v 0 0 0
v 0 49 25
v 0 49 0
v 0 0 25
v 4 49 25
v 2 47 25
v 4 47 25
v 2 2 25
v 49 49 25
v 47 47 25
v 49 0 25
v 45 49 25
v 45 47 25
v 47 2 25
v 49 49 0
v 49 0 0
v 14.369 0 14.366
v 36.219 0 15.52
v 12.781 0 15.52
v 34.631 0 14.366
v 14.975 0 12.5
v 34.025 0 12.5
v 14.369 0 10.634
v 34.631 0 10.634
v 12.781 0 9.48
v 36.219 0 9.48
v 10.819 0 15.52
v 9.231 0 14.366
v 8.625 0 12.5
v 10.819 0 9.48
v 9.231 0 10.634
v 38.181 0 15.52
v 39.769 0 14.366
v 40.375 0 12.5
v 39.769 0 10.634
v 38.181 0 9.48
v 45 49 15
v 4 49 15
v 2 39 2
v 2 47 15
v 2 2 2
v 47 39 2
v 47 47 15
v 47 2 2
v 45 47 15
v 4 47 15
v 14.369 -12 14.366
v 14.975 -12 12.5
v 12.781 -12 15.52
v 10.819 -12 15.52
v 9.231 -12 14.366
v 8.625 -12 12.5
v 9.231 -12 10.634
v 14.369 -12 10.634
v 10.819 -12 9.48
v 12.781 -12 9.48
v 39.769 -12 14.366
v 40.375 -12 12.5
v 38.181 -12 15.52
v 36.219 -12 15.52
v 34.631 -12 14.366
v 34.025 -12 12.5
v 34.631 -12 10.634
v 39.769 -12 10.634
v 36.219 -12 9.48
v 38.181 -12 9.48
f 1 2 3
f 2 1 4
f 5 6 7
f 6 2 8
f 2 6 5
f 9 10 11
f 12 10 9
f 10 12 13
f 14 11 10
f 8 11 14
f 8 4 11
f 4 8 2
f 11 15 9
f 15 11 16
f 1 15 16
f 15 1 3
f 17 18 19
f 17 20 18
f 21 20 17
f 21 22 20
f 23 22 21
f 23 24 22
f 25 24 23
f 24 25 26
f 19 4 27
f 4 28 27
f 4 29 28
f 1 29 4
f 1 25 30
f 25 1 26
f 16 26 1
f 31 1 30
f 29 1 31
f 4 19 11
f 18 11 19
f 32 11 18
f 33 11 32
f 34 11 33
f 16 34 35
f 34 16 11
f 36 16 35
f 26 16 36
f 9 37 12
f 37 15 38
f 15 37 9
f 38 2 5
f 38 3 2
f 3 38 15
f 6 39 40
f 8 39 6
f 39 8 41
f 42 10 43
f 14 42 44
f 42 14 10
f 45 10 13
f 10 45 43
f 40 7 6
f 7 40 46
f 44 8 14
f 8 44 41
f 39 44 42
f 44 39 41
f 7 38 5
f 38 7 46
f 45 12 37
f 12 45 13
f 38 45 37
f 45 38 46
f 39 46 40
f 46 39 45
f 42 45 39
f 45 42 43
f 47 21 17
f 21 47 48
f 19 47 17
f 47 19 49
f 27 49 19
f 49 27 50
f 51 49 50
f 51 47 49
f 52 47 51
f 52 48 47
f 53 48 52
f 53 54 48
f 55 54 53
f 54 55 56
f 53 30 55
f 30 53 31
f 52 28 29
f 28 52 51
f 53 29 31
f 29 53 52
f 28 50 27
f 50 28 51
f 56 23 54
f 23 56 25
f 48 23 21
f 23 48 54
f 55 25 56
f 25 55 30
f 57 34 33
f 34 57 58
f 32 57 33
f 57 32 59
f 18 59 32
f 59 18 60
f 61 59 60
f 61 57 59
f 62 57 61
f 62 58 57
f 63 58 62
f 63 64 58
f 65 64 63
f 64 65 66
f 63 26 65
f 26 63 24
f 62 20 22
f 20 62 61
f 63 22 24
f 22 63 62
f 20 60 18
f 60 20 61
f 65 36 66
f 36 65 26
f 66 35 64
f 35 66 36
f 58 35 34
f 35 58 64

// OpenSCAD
// file: ../includes/cody.scad
/*
Helper modules from Cody Sandahl
codysandahl@gmail.com
https://www.codysandahl.com
*/

//##### walls #####

module _translatedCube(loc, width, depth, height) {
  translate(loc) {
    cube([width, depth, height]);
  }
}

module wall(lowerLeft, width=1, depth=1, height=1, upperRight=undef) {
  if (upperRight != undef) {
    _translatedCube(lowerLeft, upperRight[0]-lowerLeft[0], upperRight[1]-lowerLeft[1], height);
  } else {
    _translatedCube(lowerLeft, width, depth, height);
  }
}

module _testWall() {
  wall(lowerLeft=[2, 3, 4], height=2, upperRight=[5, 5, 4]);
  wall(lowerLeft=[-1, -1, 0], width=10, depth=2, height=3.3);
}

//##### rounded boxes #####

module roundedBoxPoints(points, radius, height) {
  hull() {
    for (p = points) {
      translate(p) cylinder(r=radius, h=height);
    }
  }
}

module roundedBox(lowerLeft, width, depth, height, radius) {
  lowerRight = lowerLeft + [width-radius, radius, 0];
  upperLeft = lowerLeft + [radius, depth-radius, 0];
  upperRight = lowerLeft + [width-radius, depth-radius, 0];
  lowerLeft = lowerLeft + [radius, radius, 0];
  roundedBoxPoints([lowerLeft, lowerRight, upperLeft, upperRight], radius, height);
}

module _testRoundedBox() {
  $fn = 32;
  roundedBox(lowerLeft=[1, 2], width=3, depth=4, height=5, radius=1);
}

//##### fillet #####

module filletRA(width, radius) {
  _boxSize = 2*radius;
  _cylinderD = 4*radius;
  // fillet at a right angle
  difference() {
    cube([width, _boxSize, _boxSize]);
    translate([-1, 0, _boxSize]) rotate([0, 90, 0]) cylinder(h=width+2, d=_cylinderD);
  }
}

//##### screws and bolts #####

module countersunkScrewHead(baseDiameter, topDiameter, height, cutoutTop=0, cutoutShaft=0) {
  union() {
    translate([0, 0, -height]) cylinder(h=height, d1=baseDiameter, d2=topDiameter);
    if (cutoutTop > 0) {
      cylinder(h=cutoutTop, d=topDiameter);
    }
    if (cutoutShaft > 0) {
      translate([0, 0, -height-cutoutShaft]) cylinder(h=cutoutShaft, d=baseDiameter);
    }
  }
}

module _testCountersunkScrewHead() {
  $fn = 32;
  countersunkScrewHead(3.95, 9.2, 4.56);
  difference() {
    translate([10, 0, 0]) cube([20, 20, 5]);
    translate([20, 10, 5]) countersunkScrewHead(3.95, 9.2, 4.56, cutoutTop=4, cutoutShaft=5);
  }
}

m2HoleD = 1.75; // determined experimentally for 3d printing

module m2ScrewMount(height, holeHeight, thickness=6, useCube=false) {
  if (useCube) {
    difference() {
      cube([thickness, thickness, height]);
      translate([thickness*0.5, thickness*0.5, height-holeHeight]) cylinder(h=holeHeight+2, d=m2HoleD);
    }
  } else {
    difference() {
      cylinder(h=height, d=thickness);
      translate([0, 0, height-holeHeight]) cylinder(h=holeHeight+2, d=m2HoleD);
    }
  }
}

module _testM2ScrewMount() {
  $fn = 32;
  m2ScrewMount(10, 8);
  translate([10, 0, 2]) m2ScrewMount(4, 2);
  translate([20, 0, 0]) m2ScrewMount(4, 6);
  translate([0, 10, 0]) m2ScrewMount(height=10, holeHeight=8, useCube=true);
}

//##### prism (ramp) #####

module prism(l, w, h){
  polyhedron(
    points=[[0,0,0], [l,0,0], [l,w,0], [0,w,0], [0,w,h], [l,w,h]],
    faces=[[0,1,2,3],[5,4,3,2],[0,4,5,1],[0,3,4],[5,2,1]]
  );
}

//##### TESTING #####
//_testWall();
//_testRoundedBox();
//_testCountersunkScrewHead();
//_testM2ScrewMount();
//prism(10, 5, 2);
// main file
////////////////////////////////////////////////////////////////////////////
// Manhattan Pegboard Collection v1 : 2 Peg Bin
// designed in NYC by Matt Manhattan (mattmanhattan.com)
// MODIFIED by Cody Sandahl
////////////////////////////////////////////////////////////////////////////

include <../includes/cody.scad>

// These parameters create the INTERIOR size of your bin (in mm)

width = 45;
depth = 45;
height = 25;
thickness = 2; // this is the thickness of the walls (in mm)
pegs = 1; // span between pegs [0 = centered (one peg // 1 = 2 pegs // 2 = 3 pegs // 3 = 4 pegs]

cutoutHeight = 10; // amount to cut out of the front to make it easier to retrieve parts
rampDepth = 8; // how far the ramp extends into the bin

//////////////////////////////////////////////////////////////////
// Pegboard Bin
//////////////////////////////////////////////////////////////////

// This code generates the rectangular shape of your bin
module bin_2peg() {
    difference()
    {
        
        // this is the exterior shape
        cube([width+(thickness*2),depth+(thickness*2),height], centerequals);
        
        // this is the interior shape which we are removing
        translate([thickness,thickness,0])
        {
            cube([width,depth,height+2], centerequals);
        }
    }

  // This code generates the base of the bin
  // if you comment it out you will remove the base of your bin which can be useful for tools
    
   cube([width+(thickness*2),depth+(thickness*2),thickness], centerequals);
}

//////////////////////////////////////////////////////////////////
// Cutout to retrieve parts from front
//////////////////////////////////////////////////////////////////

difference() {
  bin_2peg();
  // cutout in front
  translate([thickness*2, depth+thickness, height-cutoutHeight]) {
    cube([width-(thickness*2), thickness, cutoutHeight]);
  }
}

//////////////////////////////////////////////////////////////////
// Ramp to make it easier to pull out parts
//////////////////////////////////////////////////////////////////
translate([thickness, thickness+depth-rampDepth, thickness]) {
  prism(width, rampDepth, height-cutoutHeight-thickness);
}

//////////////////////////////////////////////////////////////////
// Pegboard Pegs
//////////////////////////////////////////////////////////////////
    
pegCenterToCenterDistance = 25.4; 	    // 1 inch spacing
pegDiameter = 6.35; 					// 1/4 inch peg holes
pegLength = 12;
midpoint = ((2*thickness) + width)/2;
    
// leave this alone - it alters the center point of the model
centerequals = false; 
///////////////////

difference(){
    
// PEG 1
// this rotates the peg 90 degrees
rotate([90,0,0])
    { 
    // this moves the peg    
    translate([(midpoint - ((pegCenterToCenterDistance/2)*pegs)),(height/2),0])
        {    
        cylinder(h=pegLength, r=(pegDiameter/2), center=centerequals);
        }
    }

}

difference(){
    
// PEG 2
// this rotates the peg 90 degrees
rotate([90,0,0])
    { 
    // this moves the peg    
    translate([(midpoint + ((pegCenterToCenterDistance/2)*pegs)),(height/2),0])
        {    
        cylinder(h=pegLength, r=(pegDiameter/2), center=centerequals);
        }
    }
//
}
